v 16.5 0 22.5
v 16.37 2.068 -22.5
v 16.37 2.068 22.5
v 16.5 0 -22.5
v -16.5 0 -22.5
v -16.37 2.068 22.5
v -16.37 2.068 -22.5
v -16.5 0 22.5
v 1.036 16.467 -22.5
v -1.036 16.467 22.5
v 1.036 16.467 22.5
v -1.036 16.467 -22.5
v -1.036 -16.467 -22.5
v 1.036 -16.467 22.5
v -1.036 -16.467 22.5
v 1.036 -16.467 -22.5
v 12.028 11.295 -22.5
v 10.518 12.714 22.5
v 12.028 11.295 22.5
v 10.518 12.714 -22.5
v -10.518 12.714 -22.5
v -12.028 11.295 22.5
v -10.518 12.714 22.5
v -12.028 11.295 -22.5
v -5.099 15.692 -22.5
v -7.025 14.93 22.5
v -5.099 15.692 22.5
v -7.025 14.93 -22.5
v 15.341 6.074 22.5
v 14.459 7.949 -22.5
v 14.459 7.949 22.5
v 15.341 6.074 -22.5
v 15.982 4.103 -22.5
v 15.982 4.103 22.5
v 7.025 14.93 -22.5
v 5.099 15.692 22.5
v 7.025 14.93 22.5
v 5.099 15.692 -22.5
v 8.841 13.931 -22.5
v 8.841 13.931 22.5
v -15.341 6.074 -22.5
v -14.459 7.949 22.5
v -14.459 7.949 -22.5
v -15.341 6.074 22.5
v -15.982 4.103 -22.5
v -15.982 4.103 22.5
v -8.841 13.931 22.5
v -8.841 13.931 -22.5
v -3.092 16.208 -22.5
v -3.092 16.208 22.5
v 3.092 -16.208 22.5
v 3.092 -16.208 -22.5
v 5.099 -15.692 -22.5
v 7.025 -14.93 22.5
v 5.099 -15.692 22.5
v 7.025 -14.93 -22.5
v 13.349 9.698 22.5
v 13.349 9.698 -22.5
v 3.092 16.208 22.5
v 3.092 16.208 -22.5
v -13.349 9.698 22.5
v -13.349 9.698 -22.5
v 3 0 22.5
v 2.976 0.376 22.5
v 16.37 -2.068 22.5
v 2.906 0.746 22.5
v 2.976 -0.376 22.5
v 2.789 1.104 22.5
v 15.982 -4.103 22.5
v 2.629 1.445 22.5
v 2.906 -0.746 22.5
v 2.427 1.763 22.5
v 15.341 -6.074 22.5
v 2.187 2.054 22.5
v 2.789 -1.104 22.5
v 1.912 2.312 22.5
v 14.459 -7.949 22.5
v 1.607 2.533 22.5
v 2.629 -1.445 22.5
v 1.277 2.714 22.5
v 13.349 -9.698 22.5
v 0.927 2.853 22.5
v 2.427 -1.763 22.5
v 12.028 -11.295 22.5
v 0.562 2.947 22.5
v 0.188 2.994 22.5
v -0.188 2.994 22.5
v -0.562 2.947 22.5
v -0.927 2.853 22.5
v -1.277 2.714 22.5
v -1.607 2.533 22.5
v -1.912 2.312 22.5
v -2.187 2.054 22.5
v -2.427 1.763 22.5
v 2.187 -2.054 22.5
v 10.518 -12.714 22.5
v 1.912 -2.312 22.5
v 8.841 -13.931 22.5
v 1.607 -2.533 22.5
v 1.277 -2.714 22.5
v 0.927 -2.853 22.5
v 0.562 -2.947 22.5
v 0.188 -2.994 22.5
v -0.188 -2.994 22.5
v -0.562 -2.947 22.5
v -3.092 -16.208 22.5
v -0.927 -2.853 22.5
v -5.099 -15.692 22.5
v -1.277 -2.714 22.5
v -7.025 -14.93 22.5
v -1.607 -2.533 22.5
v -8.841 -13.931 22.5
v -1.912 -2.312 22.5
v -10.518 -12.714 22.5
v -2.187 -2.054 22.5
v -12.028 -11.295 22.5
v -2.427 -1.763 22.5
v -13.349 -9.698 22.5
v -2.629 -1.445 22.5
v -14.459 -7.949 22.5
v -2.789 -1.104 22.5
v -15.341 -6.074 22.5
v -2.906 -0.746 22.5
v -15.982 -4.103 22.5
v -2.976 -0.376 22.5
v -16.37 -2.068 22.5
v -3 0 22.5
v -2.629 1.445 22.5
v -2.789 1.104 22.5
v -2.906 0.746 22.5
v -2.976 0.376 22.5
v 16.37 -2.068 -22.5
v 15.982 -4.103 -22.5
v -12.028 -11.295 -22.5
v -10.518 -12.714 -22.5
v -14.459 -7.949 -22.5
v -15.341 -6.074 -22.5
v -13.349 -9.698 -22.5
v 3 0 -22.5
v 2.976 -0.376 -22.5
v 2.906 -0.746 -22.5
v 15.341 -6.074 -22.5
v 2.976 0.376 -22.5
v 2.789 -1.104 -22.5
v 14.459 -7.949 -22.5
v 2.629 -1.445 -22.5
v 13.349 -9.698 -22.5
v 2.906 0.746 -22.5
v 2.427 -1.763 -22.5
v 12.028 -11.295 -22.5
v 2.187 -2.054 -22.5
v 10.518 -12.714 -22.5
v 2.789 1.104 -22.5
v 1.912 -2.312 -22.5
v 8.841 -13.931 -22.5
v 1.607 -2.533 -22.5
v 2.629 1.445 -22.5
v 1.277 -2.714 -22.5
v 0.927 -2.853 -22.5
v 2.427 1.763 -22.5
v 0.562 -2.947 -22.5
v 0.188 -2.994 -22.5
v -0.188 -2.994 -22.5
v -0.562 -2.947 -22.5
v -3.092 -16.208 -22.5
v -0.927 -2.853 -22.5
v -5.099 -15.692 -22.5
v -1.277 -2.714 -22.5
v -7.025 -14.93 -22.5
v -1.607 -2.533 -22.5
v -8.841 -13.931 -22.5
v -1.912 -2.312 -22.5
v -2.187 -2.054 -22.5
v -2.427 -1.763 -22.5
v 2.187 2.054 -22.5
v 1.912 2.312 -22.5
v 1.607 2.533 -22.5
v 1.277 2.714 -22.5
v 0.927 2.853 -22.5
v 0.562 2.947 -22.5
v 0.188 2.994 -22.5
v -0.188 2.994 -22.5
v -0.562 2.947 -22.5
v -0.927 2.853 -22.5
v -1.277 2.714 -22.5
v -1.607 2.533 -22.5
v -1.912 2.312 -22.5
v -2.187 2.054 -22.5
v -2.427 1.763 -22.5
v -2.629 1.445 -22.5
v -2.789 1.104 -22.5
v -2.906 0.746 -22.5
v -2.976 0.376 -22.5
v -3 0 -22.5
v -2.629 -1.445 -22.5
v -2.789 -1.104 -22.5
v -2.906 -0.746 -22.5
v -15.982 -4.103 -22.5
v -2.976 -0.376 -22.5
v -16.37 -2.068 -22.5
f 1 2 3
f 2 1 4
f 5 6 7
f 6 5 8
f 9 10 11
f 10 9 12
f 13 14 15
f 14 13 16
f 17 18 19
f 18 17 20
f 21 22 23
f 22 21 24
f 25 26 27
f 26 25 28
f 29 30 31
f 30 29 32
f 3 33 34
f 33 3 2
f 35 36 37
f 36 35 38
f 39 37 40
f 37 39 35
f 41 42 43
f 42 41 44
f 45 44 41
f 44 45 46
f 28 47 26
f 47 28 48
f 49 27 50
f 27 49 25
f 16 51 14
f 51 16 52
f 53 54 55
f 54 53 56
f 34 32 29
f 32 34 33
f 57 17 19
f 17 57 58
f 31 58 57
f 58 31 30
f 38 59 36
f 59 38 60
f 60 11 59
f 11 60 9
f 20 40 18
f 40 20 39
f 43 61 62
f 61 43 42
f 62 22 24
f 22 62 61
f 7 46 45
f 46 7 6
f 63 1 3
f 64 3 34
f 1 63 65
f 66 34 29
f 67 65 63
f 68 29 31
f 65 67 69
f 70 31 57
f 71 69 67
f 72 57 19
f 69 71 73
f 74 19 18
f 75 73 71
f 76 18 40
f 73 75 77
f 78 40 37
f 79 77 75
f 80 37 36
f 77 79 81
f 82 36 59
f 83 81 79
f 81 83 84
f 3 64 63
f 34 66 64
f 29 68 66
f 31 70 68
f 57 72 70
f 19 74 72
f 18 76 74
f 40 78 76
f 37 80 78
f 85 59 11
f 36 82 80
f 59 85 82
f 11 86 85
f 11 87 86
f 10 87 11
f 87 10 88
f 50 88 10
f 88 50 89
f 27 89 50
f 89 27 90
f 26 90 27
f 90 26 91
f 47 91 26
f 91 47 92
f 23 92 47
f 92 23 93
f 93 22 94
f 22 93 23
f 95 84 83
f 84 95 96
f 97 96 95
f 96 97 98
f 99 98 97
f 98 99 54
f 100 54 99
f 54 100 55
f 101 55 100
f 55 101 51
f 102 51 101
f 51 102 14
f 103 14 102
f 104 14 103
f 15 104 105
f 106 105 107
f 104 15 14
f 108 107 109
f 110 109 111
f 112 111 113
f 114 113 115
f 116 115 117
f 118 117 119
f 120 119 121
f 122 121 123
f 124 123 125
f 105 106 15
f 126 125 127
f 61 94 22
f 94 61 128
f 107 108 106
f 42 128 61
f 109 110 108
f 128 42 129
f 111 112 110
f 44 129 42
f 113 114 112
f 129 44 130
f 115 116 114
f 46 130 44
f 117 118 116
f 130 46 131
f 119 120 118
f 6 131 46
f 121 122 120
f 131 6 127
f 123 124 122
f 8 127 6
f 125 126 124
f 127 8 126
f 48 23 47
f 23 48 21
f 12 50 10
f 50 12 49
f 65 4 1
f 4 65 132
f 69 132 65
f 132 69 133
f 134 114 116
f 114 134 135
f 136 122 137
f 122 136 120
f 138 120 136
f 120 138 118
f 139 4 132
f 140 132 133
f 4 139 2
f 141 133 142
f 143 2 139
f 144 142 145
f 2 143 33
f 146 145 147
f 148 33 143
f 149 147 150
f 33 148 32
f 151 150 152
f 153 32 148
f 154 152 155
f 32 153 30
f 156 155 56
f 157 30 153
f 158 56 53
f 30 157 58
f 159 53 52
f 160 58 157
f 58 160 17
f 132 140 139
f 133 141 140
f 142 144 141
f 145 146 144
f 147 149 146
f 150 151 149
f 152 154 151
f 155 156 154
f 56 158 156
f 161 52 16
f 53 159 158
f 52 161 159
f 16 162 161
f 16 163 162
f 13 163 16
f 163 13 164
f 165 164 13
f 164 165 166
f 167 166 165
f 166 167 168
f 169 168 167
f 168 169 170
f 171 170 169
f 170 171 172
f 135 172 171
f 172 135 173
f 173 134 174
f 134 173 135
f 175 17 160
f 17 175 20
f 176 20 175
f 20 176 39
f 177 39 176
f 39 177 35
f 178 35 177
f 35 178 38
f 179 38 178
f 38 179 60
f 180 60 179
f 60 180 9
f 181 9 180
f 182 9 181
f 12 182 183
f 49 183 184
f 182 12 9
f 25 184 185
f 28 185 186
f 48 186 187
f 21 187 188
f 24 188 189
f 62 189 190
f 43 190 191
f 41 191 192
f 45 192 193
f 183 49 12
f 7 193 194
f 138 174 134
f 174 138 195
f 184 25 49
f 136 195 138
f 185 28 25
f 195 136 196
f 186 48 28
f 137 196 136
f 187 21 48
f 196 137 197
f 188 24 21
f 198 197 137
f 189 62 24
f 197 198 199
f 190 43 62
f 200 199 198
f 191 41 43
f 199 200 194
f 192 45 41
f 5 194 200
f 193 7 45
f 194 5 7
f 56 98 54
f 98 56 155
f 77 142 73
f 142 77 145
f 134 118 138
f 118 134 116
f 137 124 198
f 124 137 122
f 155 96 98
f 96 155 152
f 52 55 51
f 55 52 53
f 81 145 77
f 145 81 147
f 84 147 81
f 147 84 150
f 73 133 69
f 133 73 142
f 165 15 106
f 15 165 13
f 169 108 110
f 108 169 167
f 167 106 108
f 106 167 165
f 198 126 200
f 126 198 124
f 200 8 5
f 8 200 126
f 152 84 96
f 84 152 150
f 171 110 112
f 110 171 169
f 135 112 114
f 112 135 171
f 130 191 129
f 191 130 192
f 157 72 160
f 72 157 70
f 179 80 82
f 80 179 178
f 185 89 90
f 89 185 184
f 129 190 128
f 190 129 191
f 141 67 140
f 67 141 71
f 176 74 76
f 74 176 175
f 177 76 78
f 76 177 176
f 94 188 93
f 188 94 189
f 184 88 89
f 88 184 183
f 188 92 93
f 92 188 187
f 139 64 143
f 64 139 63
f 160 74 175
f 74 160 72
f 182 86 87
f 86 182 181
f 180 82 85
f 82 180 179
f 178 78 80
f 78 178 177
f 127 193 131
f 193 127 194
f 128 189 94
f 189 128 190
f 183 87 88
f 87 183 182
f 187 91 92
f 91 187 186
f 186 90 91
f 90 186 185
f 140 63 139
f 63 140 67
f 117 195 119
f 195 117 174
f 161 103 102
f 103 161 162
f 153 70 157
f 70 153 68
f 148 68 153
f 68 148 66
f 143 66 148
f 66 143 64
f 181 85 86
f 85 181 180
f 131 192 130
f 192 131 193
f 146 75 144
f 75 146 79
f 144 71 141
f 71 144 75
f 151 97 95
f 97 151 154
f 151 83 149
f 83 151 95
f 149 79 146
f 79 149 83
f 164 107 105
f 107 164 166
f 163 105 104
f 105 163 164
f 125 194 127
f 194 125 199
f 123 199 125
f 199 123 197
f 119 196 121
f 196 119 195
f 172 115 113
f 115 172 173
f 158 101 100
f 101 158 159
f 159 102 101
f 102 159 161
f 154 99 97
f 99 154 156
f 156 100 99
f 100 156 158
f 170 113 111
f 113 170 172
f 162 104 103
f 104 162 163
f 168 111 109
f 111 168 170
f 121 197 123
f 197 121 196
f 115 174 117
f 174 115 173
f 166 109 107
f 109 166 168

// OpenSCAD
$fn = 50;


difference() {
	union() {
		translate(v = [0, 0, -22.5000000000]) {
			cylinder(h = 45, r = 16.5000000000);
		}
	}
	union() {
		translate(v = [0, 0, -100.0000000000]) {
			cylinder(h = 200, r = 3);
		}
	}
}
